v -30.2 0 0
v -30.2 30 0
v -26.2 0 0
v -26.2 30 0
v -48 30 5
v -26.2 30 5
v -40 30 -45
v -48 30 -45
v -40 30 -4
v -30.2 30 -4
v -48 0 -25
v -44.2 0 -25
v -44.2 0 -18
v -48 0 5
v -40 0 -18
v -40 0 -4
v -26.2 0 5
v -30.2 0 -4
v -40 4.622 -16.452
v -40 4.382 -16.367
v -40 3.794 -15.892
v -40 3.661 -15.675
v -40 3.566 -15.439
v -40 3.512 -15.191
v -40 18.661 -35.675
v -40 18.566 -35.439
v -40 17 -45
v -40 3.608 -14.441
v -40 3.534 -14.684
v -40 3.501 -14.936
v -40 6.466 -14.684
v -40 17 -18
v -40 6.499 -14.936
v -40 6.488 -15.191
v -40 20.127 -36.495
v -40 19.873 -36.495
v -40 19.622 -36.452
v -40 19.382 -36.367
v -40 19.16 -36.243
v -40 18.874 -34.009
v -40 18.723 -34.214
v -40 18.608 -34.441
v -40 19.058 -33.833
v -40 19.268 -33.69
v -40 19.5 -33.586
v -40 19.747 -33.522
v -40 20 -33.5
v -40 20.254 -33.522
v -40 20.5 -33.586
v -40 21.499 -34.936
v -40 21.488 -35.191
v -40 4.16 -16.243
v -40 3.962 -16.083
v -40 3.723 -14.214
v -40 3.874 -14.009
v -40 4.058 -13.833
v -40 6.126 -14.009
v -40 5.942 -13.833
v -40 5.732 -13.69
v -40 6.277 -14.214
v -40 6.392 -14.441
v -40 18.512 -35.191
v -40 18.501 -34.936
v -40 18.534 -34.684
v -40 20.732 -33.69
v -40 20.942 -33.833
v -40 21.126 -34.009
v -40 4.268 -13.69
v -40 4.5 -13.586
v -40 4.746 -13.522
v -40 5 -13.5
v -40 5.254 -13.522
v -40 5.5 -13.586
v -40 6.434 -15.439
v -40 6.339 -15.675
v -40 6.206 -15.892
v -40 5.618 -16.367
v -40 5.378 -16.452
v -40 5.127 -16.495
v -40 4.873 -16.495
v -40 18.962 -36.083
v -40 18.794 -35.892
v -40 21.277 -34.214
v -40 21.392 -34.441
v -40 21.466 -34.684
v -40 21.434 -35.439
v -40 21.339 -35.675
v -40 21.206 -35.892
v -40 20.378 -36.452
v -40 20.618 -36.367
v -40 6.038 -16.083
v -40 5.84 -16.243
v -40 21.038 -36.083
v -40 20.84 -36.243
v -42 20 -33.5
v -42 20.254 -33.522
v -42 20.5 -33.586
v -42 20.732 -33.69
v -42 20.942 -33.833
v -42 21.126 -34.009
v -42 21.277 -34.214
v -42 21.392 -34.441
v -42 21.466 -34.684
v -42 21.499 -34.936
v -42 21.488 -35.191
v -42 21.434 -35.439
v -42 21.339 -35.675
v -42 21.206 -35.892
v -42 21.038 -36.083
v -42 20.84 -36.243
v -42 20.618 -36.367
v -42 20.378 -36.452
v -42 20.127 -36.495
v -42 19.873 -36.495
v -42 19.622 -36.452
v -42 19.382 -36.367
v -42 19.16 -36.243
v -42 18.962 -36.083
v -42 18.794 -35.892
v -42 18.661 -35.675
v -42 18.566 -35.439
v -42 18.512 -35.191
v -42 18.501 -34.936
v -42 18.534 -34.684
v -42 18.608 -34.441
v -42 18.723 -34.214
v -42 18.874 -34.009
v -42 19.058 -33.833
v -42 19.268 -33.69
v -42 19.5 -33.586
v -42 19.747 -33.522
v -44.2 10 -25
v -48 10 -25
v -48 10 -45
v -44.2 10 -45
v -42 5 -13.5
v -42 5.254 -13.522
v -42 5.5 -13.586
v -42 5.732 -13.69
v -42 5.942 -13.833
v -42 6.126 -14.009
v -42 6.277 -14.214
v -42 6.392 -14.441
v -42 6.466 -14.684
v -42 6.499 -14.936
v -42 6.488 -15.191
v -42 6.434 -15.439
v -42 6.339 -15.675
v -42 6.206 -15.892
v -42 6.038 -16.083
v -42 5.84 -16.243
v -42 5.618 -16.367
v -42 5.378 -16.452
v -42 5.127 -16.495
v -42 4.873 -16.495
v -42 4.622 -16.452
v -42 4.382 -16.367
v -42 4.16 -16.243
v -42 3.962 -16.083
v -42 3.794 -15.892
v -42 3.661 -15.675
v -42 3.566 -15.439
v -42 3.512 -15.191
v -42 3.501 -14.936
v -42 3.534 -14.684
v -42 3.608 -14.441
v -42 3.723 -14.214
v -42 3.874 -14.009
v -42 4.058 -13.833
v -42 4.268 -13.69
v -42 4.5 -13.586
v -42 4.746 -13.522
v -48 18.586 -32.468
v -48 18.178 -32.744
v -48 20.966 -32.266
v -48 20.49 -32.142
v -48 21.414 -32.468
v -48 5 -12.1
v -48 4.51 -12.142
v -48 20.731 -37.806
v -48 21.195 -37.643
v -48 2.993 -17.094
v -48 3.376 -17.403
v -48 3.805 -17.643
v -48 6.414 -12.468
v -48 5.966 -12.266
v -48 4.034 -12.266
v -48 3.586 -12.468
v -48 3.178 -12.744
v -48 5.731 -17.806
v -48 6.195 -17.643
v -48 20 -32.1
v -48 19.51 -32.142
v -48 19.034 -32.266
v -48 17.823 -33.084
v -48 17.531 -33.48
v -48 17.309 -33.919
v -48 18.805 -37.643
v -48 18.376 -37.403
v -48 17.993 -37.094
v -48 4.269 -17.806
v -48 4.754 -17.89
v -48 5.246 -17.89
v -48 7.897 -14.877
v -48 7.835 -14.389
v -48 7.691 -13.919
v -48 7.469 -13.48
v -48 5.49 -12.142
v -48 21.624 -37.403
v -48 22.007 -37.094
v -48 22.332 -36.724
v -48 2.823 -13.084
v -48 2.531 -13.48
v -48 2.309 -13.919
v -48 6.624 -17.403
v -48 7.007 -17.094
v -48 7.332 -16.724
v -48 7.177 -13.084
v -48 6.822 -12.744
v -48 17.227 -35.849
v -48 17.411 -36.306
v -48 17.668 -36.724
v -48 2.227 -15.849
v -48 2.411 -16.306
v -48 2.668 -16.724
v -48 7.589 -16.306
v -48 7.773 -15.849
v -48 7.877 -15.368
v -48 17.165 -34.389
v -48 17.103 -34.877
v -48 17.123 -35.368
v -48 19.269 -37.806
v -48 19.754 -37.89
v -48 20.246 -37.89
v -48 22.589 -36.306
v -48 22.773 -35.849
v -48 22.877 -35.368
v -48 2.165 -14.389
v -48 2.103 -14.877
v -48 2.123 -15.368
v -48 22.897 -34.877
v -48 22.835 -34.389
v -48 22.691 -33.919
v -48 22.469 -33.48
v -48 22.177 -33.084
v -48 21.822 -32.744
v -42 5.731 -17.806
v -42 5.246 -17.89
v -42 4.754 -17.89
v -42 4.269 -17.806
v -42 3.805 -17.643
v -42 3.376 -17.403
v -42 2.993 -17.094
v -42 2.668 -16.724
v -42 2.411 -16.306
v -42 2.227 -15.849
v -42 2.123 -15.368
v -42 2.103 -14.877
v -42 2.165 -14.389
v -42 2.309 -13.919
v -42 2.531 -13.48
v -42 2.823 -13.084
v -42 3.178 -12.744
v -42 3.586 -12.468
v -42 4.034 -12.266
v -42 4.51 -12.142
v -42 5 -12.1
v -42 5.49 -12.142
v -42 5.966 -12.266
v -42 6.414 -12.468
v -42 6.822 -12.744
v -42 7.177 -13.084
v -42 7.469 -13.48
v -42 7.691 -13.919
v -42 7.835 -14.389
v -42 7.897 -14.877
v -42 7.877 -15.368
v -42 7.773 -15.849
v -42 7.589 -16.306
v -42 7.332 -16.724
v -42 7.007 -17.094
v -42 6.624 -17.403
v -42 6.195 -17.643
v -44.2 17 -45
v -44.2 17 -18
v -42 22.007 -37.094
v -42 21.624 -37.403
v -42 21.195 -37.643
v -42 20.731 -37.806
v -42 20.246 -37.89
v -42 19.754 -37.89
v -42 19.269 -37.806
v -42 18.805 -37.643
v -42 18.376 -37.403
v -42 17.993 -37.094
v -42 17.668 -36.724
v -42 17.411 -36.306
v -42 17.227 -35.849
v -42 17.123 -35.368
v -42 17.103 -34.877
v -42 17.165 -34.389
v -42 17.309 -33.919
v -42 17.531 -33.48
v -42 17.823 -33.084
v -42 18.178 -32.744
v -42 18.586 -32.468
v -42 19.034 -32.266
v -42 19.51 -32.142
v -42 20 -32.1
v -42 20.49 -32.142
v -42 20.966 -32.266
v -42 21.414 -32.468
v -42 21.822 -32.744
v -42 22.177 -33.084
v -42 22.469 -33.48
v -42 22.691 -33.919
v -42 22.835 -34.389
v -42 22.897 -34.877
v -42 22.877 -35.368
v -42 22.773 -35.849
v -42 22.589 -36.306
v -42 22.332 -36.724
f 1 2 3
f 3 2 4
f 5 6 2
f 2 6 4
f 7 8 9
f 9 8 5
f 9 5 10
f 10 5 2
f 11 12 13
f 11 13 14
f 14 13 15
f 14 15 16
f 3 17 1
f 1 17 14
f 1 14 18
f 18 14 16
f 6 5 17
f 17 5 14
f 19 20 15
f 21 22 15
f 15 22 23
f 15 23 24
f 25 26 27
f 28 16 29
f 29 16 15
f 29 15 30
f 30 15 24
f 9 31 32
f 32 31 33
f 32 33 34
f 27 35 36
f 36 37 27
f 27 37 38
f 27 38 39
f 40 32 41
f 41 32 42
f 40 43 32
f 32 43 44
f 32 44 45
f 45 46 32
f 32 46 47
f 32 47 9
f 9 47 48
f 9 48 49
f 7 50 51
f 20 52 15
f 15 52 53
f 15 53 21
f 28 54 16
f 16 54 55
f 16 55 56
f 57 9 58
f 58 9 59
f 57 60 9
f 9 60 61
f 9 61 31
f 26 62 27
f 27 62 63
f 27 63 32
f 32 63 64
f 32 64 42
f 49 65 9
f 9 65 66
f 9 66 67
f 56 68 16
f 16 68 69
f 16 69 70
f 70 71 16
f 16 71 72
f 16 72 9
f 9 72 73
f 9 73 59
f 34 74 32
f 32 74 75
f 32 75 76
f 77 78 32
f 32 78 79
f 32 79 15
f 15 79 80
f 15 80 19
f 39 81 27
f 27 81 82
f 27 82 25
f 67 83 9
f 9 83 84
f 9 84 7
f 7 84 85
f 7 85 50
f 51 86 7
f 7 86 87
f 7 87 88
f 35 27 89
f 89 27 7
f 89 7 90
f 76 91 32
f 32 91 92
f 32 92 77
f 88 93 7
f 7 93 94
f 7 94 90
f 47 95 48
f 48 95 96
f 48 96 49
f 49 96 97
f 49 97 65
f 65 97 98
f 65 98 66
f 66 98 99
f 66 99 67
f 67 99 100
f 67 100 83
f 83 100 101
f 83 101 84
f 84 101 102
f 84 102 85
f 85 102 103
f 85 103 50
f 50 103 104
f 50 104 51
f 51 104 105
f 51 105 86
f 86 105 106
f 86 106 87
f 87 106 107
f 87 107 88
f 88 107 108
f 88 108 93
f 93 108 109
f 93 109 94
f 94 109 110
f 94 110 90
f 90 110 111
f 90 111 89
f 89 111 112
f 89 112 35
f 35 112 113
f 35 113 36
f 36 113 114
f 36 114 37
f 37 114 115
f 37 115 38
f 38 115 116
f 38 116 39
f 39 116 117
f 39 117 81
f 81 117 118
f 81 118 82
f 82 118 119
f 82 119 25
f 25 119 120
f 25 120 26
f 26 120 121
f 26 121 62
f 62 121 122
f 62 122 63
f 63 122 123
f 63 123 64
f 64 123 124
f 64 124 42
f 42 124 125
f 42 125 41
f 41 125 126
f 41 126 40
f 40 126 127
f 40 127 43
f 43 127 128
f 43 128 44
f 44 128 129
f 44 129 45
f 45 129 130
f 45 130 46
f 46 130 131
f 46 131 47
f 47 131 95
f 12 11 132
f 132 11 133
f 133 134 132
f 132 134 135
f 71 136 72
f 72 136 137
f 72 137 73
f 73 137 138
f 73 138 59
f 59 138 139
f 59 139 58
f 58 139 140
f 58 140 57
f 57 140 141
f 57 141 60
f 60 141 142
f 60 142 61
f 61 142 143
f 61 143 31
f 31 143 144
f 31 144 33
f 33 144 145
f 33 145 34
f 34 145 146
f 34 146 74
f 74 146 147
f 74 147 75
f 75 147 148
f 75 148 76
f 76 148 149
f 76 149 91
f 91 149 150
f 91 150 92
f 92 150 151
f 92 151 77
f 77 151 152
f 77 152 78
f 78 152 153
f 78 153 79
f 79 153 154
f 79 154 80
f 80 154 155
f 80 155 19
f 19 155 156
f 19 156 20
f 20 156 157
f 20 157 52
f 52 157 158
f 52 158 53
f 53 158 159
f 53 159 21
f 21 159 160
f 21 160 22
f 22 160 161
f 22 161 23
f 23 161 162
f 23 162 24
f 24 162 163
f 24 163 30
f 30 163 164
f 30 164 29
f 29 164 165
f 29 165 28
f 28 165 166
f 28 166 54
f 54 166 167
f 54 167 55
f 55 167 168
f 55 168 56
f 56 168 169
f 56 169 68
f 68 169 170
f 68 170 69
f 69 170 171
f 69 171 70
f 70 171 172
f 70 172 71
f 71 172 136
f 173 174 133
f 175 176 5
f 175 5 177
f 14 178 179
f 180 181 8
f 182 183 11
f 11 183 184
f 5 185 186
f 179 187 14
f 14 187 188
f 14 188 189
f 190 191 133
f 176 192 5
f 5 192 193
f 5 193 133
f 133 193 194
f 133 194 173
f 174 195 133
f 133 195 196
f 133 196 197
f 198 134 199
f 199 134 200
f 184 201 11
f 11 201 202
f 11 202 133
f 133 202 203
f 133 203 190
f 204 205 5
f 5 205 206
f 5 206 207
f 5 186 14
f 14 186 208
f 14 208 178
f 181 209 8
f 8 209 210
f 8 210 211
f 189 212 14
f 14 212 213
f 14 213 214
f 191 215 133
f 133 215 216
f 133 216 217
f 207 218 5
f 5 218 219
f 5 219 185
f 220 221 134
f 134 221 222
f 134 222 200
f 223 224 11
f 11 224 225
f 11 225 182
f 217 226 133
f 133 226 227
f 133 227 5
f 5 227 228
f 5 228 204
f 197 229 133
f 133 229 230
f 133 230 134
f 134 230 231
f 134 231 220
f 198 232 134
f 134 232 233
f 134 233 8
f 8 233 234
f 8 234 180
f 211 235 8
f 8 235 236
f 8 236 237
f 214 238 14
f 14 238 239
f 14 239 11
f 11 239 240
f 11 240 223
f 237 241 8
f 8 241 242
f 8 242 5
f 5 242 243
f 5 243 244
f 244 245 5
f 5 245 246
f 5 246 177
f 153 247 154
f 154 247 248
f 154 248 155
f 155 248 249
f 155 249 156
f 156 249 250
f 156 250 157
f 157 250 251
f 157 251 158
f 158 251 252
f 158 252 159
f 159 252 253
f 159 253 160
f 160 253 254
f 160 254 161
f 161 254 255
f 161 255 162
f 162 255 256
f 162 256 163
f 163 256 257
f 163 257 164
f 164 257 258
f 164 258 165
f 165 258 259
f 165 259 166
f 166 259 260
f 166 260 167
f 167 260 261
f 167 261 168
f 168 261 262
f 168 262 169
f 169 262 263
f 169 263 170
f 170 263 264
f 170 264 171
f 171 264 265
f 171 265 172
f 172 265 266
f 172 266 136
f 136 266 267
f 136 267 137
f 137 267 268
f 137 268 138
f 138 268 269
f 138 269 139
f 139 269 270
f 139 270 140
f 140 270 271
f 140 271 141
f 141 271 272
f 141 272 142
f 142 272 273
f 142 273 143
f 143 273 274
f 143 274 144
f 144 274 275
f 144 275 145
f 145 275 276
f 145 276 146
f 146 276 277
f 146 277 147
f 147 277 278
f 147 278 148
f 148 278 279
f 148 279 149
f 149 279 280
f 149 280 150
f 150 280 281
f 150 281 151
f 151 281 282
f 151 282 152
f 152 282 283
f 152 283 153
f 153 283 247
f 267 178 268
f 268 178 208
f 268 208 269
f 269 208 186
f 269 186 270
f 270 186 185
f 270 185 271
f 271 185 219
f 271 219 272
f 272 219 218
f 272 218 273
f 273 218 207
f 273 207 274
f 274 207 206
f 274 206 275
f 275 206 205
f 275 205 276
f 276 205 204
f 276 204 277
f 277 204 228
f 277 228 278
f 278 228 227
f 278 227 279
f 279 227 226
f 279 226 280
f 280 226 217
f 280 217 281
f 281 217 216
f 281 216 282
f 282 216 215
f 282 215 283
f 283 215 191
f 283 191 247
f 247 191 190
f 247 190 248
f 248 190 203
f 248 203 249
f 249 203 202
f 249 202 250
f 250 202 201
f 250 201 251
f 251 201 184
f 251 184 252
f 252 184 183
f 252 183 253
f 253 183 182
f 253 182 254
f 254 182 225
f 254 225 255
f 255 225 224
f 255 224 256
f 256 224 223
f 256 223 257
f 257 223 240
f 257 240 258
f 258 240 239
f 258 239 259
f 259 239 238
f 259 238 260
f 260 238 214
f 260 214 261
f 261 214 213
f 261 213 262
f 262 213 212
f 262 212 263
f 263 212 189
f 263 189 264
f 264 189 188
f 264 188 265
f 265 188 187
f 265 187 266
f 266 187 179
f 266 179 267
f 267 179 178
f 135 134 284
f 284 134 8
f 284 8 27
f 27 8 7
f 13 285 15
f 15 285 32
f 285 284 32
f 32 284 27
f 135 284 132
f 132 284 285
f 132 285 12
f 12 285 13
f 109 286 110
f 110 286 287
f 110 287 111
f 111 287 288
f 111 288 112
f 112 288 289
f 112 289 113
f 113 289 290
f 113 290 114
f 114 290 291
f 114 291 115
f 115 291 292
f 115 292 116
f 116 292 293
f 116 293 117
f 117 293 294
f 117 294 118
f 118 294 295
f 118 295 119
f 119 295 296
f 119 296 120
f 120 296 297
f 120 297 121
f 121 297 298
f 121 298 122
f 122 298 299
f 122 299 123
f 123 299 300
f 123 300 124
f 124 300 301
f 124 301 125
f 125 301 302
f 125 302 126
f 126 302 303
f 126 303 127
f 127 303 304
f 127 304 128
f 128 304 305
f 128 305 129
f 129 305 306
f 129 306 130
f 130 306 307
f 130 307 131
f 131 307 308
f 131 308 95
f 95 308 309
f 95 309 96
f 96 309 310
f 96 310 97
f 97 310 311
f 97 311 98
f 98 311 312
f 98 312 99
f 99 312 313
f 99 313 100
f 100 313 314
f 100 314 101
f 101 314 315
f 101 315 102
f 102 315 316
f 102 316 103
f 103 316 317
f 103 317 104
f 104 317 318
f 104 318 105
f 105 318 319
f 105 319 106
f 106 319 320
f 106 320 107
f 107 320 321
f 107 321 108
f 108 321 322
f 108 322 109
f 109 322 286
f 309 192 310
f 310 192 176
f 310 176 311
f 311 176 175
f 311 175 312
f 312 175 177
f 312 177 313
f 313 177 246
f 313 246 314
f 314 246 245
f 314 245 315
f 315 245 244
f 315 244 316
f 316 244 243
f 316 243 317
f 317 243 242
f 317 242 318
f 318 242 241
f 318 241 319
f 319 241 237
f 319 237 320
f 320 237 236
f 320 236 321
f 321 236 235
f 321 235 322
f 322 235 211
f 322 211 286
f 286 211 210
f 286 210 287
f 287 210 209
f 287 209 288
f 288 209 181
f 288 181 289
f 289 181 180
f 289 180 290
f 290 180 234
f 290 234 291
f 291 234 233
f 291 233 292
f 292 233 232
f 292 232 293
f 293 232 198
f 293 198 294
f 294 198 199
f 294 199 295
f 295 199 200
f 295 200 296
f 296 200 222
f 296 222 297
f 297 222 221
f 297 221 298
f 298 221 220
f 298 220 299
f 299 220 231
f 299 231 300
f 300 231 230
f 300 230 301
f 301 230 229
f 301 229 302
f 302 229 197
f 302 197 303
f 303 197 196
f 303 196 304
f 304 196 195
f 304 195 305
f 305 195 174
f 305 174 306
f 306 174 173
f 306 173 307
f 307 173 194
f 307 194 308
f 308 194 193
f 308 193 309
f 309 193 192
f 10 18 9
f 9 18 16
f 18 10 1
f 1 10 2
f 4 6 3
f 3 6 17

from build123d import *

# Parameters (mm, degrees)
SKETCH_1_W           = 40
SKETCH_1_H           = 30
EXTRUDE_1_DEPTH      = 5
SKETCH_2_W           = 5
SKETCH_2_H           = 30
EXTRUDE_2_DEPTH      = 20
SKETCH_3_W           = 20
SKETCH_3_H           = 30
EXTRUDE_3_DEPTH      = 5
SKETCH_4_W           = 15
SKETCH_4_H           = 30
CUT_EXTRUDE_1_DEPTH  = 5
SKETCH_5_R           = 1.5
CUT_EXTRUDE_2_DEPTH  = 5
SKETCH_6_R           = 3
CUT_EXTRUDE_3_DEPTH  = 2
SKETCH_7_W           = 15
SKETCH_7_H           = 30
CUT_EXTRUDE_4_DEPTH  = 10
SKETCH_8_W           = 5
SKETCH_8_H           = 30
EXTRUDE_4_DEPTH      = 20
SKETCH_10_W          = 30
SKETCH_10_H          = 30
EXTRUDE_5_DEPTH      = 3
SKETCH_11_R          = 1.5
CUT_EXTRUDE_6_DEPTH  = 13
SKETCH_12_R          = 2.9
CUT_EXTRUDE_7_DEPTH  = 6
SKETCH_14_W          = 8
SKETCH_14_H          = 20
EXTRUDE_6_DEPTH      = 20
CUT_EXTRUDE_8_DEPTH  = 4.2
SKETCH_16_R          = 1.5
CUT_EXTRUDE_9_DEPTH  = 14.2
SKETCH_17_R          = 2.9
CUT_EXTRUDE_10_DEPTH = 6
SKETCH_18_W          = 4
SKETCH_18_H          = 30
EXTRUDE_7_DEPTH      = 9.8
SKETCH_19_W          = 5
SKETCH_19_H          = 30
CUT_EXTRUDE_11_DEPTH = 26.2


with BuildPart() as part:
    # 草图1 → 凸台-拉伸1 (new body)
    with BuildSketch(Plane.XY):
        with Locations((-20, 15)):
            Rectangle(SKETCH_1_W, SKETCH_1_H)
    extrude(amount=EXTRUDE_1_DEPTH)

    # 草图2 → 凸台-拉伸2 (add)
    with BuildSketch(Plane.ZY.offset(40)):
        with Locations((2.5, 15)):
            Rectangle(SKETCH_2_W, SKETCH_2_H)
    extrude(amount=EXTRUDE_2_DEPTH)

    # 草图3 → 凸台-拉伸3 (add)
    with BuildSketch(Plane(origin=(0, 0, 0), x_dir=(-1, 0, 0), z_dir=(0, 0, -1))):
        with Locations((50, 15)):
            Rectangle(SKETCH_3_W, SKETCH_3_H)
    extrude(amount=EXTRUDE_3_DEPTH)

    # 草图4 → 切除-拉伸1 (cut)
    with BuildSketch(Plane.XY.offset(5)):
        with Locations((-52.5, 15)):
            Rectangle(SKETCH_4_W, SKETCH_4_H)
    extrude(amount=-CUT_EXTRUDE_1_DEPTH, mode=Mode.SUBTRACT)

    # 草图5 → 切除-拉伸2 (cut)
    with BuildSketch(Plane.XY):
        with Locations((-52.5, 5)):
            Circle(SKETCH_5_R)
        with Locations((-52.5, 25)):
            Circle(SKETCH_5_R)
    extrude(amount=-CUT_EXTRUDE_2_DEPTH, mode=Mode.SUBTRACT)

    # 草图6 → 切除-拉伸3 (cut)
    with BuildSketch(Plane.XY):
        with Locations((-52.5, 25)):
            Circle(SKETCH_6_R)
        with Locations((-52.5, 5)):
            Circle(SKETCH_6_R)
    extrude(amount=-CUT_EXTRUDE_3_DEPTH, mode=Mode.SUBTRACT)

    # 草图7 → 切除-拉伸4 (cut)
    with BuildSketch(Plane.XY):
        with Locations((-52.5, 15)):
            Rectangle(SKETCH_7_W, SKETCH_7_H)
    extrude(amount=-CUT_EXTRUDE_4_DEPTH, mode=Mode.SUBTRACT)

    # 草图8 → 凸台-拉伸4 (add)
    with BuildSketch(Plane(origin=(0, 0, -5), x_dir=(-1, 0, 0), z_dir=(0, 0, -1))):
        with Locations((42.5, 15)):
            Rectangle(SKETCH_8_W, SKETCH_8_H)
    extrude(amount=EXTRUDE_4_DEPTH)

    # 草图10 → 凸台-拉伸5 (add)
    with BuildSketch(Plane.ZY.offset(45)):
        with Locations((-10, 15)):
            Rectangle(SKETCH_10_W, SKETCH_10_H)
    extrude(amount=EXTRUDE_5_DEPTH)

    # 草图11 → 切除-拉伸6 (cut)
    with BuildSketch(Plane.ZY.offset(48)):
        with Locations((-15, 5)):
            Circle(SKETCH_11_R)
    extrude(amount=-CUT_EXTRUDE_6_DEPTH, mode=Mode.SUBTRACT)

    # 草图12 → 切除-拉伸7 (cut)
    with BuildSketch(Plane.ZY.offset(48)):
        with Locations((-15, 5)):
            Circle(SKETCH_12_R)
    extrude(amount=-CUT_EXTRUDE_7_DEPTH, mode=Mode.SUBTRACT)

    # 草图14 → 凸台-拉伸6 (add)
    with BuildSketch(Plane(origin=(0, 0, -25), x_dir=(-1, 0, 0), z_dir=(0, 0, -1))):
        with Locations((44, 20)):
            Rectangle(SKETCH_14_W, SKETCH_14_H)
    extrude(amount=EXTRUDE_6_DEPTH)

    # 草图15 → 切除-拉伸8 (cut)
    with BuildSketch(Plane(origin=(-40, 0, 0), x_dir=(0, 0, -1), z_dir=(1, 0, 0))):
        Polygon((45, 10), (25, 10), (25, 0), (18, 0), (18, 10), (18, 17), (45, 17), align=None)
    extrude(amount=-CUT_EXTRUDE_8_DEPTH, mode=Mode.SUBTRACT)

    # 草图16 → 切除-拉伸9 (cut)
    with BuildSketch(Plane.ZY.offset(48)):
        with Locations((-35, 20)):
            Circle(SKETCH_16_R)
    extrude(amount=-CUT_EXTRUDE_9_DEPTH, mode=Mode.SUBTRACT)

    # 草图17 → 切除-拉伸10 (cut)
    with BuildSketch(Plane.ZY.offset(48)):
        with Locations((-35, 20)):
            Circle(SKETCH_17_R)
    extrude(amount=-CUT_EXTRUDE_10_DEPTH, mode=Mode.SUBTRACT)

    # 草图18 → 凸台-拉伸7 (add)
    with BuildSketch(Plane(origin=(-40, 0, 0), x_dir=(0, 0, -1), z_dir=(1, 0, 0))):
        with Locations((2, 15)):
            Rectangle(SKETCH_18_W, SKETCH_18_H)
    extrude(amount=EXTRUDE_7_DEPTH)

    # 草图19 → 切除-拉伸11 (cut)
    with BuildSketch(Plane(origin=(0, 0, 0), x_dir=(0, 0, -1), z_dir=(1, 0, 0))):
        with Locations((-2.5, 15)):
            Rectangle(SKETCH_19_W, SKETCH_19_H)
    extrude(amount=-CUT_EXTRUDE_11_DEPTH, mode=Mode.SUBTRACT)


solid = part.part
